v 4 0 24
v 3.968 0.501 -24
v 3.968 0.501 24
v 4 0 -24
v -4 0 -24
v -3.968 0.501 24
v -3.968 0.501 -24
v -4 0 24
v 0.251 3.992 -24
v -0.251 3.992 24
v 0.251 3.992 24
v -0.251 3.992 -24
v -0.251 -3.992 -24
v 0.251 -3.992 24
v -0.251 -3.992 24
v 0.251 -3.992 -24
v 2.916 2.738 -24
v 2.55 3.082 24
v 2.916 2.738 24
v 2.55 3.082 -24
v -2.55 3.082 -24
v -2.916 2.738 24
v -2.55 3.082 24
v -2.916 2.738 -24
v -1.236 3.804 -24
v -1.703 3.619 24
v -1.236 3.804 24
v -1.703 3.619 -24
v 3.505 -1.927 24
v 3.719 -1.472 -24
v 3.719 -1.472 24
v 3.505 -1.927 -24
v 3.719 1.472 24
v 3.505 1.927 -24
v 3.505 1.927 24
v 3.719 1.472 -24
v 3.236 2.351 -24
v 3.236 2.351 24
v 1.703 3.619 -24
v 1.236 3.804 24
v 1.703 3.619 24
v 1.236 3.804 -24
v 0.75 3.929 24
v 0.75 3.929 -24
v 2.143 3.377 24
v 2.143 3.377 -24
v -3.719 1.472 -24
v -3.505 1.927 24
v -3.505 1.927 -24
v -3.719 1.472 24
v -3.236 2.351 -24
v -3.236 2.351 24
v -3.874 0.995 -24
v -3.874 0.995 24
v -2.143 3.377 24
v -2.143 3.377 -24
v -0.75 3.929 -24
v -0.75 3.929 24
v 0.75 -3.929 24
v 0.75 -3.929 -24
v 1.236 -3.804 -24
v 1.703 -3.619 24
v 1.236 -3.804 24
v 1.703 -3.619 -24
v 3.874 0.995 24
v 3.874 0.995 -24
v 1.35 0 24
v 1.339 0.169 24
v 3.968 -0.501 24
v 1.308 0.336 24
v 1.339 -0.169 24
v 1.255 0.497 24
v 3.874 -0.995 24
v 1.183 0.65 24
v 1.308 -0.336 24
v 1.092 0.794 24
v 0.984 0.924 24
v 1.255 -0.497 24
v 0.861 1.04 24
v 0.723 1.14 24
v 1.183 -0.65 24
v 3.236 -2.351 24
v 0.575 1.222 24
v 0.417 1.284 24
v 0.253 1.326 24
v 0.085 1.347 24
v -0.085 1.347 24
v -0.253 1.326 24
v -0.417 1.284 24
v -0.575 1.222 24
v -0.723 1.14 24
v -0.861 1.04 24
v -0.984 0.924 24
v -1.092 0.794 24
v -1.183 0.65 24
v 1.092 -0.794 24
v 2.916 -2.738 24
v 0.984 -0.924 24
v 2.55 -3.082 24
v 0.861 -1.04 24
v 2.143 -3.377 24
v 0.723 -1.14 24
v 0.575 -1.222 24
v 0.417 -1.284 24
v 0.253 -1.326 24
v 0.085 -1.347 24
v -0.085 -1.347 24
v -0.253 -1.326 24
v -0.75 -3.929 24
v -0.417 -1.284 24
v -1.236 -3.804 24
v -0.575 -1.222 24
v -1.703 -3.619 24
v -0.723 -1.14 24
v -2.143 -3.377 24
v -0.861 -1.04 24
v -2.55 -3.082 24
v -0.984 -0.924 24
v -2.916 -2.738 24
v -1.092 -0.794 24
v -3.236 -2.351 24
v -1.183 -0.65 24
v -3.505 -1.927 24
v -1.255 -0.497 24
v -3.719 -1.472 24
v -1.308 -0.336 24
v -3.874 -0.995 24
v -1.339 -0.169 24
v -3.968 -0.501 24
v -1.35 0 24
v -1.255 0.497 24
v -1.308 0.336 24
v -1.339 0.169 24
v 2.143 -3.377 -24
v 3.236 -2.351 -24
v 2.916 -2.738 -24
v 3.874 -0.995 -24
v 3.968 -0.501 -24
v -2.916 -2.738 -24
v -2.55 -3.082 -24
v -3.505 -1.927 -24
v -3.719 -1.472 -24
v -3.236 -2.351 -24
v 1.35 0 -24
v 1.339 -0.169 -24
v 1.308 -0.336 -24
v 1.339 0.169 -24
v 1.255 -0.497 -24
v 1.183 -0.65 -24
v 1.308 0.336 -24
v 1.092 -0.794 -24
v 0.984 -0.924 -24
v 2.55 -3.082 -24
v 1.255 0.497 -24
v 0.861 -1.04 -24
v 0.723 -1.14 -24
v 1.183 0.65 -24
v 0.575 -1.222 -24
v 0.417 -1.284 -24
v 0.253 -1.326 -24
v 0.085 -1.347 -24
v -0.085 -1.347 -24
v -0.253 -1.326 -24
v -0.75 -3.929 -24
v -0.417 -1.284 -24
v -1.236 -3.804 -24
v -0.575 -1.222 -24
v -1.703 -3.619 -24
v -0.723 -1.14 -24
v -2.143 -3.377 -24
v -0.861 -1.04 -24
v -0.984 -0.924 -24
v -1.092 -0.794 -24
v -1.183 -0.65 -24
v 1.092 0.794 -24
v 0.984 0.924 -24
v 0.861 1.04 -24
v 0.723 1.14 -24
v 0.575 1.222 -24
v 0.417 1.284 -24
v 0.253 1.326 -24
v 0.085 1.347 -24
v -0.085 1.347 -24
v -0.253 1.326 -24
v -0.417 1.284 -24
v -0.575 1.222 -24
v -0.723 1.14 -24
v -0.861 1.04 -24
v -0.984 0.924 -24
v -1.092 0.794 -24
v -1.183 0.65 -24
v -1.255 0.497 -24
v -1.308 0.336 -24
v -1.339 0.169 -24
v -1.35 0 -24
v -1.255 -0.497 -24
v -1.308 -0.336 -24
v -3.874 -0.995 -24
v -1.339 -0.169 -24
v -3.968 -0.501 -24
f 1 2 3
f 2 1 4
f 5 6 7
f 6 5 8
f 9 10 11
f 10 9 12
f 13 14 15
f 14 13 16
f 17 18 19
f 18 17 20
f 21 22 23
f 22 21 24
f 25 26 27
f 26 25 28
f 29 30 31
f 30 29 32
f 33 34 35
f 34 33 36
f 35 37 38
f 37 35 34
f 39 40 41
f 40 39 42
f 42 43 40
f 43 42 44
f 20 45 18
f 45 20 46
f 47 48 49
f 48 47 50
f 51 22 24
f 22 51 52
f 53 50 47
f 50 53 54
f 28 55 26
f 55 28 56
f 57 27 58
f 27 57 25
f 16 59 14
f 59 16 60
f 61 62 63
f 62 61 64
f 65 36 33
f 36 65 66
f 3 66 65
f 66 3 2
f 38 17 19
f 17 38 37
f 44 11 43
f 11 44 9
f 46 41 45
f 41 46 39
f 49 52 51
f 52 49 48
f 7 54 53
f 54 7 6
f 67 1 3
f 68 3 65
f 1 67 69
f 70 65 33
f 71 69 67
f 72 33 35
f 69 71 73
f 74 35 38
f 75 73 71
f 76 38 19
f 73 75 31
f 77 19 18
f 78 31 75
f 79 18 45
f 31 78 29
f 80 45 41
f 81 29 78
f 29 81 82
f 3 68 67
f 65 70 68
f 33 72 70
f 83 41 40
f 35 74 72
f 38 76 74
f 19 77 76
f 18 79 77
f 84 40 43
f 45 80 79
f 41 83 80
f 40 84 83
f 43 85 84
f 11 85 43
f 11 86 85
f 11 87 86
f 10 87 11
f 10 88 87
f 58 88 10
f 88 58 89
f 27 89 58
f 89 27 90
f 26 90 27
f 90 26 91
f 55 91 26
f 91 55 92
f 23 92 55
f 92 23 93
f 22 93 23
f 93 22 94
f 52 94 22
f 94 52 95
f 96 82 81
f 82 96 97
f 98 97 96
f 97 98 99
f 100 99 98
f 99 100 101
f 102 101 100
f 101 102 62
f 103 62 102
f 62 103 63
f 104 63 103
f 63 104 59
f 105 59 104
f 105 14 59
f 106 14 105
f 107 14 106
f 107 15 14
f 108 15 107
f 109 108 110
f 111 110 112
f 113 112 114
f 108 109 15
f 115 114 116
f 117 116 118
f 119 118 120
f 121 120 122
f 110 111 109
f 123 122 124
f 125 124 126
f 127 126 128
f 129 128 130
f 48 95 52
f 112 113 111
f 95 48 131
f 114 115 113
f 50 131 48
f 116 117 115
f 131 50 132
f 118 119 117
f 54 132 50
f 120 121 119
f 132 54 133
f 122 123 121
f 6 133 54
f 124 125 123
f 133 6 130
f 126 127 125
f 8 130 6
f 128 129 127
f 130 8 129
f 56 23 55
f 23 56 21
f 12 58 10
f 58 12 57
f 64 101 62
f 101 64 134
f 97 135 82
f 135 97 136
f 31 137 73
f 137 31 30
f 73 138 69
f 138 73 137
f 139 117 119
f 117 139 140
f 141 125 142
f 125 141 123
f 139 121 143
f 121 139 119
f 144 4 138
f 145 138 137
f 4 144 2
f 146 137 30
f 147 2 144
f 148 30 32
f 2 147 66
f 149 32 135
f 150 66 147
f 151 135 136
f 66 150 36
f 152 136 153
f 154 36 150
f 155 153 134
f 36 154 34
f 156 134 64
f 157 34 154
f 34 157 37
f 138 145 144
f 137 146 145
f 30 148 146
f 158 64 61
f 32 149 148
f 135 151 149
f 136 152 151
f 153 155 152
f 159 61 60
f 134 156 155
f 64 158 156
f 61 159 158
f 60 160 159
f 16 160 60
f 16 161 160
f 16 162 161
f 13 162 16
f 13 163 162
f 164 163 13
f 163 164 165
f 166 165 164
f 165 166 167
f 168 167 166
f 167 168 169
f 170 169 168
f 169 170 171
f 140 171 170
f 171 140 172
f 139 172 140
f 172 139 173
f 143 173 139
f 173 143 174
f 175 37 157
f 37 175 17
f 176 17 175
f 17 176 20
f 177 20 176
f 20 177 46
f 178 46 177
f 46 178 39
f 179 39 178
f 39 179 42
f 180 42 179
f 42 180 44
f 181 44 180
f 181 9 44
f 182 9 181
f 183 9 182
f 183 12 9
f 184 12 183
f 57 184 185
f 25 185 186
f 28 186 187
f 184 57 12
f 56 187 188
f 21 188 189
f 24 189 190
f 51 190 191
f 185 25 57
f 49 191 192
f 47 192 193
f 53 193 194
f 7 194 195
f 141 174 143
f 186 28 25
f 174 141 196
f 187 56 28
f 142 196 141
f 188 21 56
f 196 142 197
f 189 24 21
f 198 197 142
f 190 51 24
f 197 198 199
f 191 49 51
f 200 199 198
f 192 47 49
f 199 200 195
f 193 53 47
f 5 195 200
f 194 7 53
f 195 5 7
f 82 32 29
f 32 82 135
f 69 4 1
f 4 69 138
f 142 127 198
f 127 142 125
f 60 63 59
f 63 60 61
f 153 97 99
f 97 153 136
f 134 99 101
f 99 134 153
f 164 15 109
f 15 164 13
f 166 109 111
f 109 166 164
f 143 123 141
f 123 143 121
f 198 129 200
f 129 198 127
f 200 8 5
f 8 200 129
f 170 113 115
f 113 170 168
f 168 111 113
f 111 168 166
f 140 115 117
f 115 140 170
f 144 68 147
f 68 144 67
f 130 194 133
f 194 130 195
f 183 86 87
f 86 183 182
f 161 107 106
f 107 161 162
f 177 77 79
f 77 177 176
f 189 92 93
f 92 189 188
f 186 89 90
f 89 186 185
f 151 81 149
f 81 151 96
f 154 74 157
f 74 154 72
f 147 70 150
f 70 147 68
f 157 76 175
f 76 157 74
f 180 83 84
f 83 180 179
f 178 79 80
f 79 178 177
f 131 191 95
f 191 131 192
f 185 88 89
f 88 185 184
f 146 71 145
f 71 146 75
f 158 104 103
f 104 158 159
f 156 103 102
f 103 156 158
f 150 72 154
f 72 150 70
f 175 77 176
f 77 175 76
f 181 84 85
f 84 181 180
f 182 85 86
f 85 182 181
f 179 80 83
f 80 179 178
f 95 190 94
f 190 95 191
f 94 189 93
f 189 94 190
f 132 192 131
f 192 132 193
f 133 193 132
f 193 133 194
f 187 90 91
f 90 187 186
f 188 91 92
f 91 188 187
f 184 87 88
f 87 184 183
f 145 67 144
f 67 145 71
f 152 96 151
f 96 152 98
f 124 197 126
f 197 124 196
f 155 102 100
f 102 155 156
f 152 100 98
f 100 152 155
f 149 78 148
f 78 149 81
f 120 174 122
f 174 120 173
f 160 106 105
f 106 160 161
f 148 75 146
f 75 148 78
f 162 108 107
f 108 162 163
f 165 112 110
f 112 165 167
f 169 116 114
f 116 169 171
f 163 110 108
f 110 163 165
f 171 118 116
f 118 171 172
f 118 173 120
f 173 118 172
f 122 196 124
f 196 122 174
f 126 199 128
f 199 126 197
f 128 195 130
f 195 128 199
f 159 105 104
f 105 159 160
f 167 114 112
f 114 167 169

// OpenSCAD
$fn = 50;


difference() {
	union() {
		translate(v = [0, 0, -24.0000000000]) {
			cylinder(h = 48, r = 4.0000000000);
		}
	}
	union() {
		translate(v = [0, 0, -100.0000000000]) {
			cylinder(h = 200, r = 1.3500000000);
		}
	}
}
